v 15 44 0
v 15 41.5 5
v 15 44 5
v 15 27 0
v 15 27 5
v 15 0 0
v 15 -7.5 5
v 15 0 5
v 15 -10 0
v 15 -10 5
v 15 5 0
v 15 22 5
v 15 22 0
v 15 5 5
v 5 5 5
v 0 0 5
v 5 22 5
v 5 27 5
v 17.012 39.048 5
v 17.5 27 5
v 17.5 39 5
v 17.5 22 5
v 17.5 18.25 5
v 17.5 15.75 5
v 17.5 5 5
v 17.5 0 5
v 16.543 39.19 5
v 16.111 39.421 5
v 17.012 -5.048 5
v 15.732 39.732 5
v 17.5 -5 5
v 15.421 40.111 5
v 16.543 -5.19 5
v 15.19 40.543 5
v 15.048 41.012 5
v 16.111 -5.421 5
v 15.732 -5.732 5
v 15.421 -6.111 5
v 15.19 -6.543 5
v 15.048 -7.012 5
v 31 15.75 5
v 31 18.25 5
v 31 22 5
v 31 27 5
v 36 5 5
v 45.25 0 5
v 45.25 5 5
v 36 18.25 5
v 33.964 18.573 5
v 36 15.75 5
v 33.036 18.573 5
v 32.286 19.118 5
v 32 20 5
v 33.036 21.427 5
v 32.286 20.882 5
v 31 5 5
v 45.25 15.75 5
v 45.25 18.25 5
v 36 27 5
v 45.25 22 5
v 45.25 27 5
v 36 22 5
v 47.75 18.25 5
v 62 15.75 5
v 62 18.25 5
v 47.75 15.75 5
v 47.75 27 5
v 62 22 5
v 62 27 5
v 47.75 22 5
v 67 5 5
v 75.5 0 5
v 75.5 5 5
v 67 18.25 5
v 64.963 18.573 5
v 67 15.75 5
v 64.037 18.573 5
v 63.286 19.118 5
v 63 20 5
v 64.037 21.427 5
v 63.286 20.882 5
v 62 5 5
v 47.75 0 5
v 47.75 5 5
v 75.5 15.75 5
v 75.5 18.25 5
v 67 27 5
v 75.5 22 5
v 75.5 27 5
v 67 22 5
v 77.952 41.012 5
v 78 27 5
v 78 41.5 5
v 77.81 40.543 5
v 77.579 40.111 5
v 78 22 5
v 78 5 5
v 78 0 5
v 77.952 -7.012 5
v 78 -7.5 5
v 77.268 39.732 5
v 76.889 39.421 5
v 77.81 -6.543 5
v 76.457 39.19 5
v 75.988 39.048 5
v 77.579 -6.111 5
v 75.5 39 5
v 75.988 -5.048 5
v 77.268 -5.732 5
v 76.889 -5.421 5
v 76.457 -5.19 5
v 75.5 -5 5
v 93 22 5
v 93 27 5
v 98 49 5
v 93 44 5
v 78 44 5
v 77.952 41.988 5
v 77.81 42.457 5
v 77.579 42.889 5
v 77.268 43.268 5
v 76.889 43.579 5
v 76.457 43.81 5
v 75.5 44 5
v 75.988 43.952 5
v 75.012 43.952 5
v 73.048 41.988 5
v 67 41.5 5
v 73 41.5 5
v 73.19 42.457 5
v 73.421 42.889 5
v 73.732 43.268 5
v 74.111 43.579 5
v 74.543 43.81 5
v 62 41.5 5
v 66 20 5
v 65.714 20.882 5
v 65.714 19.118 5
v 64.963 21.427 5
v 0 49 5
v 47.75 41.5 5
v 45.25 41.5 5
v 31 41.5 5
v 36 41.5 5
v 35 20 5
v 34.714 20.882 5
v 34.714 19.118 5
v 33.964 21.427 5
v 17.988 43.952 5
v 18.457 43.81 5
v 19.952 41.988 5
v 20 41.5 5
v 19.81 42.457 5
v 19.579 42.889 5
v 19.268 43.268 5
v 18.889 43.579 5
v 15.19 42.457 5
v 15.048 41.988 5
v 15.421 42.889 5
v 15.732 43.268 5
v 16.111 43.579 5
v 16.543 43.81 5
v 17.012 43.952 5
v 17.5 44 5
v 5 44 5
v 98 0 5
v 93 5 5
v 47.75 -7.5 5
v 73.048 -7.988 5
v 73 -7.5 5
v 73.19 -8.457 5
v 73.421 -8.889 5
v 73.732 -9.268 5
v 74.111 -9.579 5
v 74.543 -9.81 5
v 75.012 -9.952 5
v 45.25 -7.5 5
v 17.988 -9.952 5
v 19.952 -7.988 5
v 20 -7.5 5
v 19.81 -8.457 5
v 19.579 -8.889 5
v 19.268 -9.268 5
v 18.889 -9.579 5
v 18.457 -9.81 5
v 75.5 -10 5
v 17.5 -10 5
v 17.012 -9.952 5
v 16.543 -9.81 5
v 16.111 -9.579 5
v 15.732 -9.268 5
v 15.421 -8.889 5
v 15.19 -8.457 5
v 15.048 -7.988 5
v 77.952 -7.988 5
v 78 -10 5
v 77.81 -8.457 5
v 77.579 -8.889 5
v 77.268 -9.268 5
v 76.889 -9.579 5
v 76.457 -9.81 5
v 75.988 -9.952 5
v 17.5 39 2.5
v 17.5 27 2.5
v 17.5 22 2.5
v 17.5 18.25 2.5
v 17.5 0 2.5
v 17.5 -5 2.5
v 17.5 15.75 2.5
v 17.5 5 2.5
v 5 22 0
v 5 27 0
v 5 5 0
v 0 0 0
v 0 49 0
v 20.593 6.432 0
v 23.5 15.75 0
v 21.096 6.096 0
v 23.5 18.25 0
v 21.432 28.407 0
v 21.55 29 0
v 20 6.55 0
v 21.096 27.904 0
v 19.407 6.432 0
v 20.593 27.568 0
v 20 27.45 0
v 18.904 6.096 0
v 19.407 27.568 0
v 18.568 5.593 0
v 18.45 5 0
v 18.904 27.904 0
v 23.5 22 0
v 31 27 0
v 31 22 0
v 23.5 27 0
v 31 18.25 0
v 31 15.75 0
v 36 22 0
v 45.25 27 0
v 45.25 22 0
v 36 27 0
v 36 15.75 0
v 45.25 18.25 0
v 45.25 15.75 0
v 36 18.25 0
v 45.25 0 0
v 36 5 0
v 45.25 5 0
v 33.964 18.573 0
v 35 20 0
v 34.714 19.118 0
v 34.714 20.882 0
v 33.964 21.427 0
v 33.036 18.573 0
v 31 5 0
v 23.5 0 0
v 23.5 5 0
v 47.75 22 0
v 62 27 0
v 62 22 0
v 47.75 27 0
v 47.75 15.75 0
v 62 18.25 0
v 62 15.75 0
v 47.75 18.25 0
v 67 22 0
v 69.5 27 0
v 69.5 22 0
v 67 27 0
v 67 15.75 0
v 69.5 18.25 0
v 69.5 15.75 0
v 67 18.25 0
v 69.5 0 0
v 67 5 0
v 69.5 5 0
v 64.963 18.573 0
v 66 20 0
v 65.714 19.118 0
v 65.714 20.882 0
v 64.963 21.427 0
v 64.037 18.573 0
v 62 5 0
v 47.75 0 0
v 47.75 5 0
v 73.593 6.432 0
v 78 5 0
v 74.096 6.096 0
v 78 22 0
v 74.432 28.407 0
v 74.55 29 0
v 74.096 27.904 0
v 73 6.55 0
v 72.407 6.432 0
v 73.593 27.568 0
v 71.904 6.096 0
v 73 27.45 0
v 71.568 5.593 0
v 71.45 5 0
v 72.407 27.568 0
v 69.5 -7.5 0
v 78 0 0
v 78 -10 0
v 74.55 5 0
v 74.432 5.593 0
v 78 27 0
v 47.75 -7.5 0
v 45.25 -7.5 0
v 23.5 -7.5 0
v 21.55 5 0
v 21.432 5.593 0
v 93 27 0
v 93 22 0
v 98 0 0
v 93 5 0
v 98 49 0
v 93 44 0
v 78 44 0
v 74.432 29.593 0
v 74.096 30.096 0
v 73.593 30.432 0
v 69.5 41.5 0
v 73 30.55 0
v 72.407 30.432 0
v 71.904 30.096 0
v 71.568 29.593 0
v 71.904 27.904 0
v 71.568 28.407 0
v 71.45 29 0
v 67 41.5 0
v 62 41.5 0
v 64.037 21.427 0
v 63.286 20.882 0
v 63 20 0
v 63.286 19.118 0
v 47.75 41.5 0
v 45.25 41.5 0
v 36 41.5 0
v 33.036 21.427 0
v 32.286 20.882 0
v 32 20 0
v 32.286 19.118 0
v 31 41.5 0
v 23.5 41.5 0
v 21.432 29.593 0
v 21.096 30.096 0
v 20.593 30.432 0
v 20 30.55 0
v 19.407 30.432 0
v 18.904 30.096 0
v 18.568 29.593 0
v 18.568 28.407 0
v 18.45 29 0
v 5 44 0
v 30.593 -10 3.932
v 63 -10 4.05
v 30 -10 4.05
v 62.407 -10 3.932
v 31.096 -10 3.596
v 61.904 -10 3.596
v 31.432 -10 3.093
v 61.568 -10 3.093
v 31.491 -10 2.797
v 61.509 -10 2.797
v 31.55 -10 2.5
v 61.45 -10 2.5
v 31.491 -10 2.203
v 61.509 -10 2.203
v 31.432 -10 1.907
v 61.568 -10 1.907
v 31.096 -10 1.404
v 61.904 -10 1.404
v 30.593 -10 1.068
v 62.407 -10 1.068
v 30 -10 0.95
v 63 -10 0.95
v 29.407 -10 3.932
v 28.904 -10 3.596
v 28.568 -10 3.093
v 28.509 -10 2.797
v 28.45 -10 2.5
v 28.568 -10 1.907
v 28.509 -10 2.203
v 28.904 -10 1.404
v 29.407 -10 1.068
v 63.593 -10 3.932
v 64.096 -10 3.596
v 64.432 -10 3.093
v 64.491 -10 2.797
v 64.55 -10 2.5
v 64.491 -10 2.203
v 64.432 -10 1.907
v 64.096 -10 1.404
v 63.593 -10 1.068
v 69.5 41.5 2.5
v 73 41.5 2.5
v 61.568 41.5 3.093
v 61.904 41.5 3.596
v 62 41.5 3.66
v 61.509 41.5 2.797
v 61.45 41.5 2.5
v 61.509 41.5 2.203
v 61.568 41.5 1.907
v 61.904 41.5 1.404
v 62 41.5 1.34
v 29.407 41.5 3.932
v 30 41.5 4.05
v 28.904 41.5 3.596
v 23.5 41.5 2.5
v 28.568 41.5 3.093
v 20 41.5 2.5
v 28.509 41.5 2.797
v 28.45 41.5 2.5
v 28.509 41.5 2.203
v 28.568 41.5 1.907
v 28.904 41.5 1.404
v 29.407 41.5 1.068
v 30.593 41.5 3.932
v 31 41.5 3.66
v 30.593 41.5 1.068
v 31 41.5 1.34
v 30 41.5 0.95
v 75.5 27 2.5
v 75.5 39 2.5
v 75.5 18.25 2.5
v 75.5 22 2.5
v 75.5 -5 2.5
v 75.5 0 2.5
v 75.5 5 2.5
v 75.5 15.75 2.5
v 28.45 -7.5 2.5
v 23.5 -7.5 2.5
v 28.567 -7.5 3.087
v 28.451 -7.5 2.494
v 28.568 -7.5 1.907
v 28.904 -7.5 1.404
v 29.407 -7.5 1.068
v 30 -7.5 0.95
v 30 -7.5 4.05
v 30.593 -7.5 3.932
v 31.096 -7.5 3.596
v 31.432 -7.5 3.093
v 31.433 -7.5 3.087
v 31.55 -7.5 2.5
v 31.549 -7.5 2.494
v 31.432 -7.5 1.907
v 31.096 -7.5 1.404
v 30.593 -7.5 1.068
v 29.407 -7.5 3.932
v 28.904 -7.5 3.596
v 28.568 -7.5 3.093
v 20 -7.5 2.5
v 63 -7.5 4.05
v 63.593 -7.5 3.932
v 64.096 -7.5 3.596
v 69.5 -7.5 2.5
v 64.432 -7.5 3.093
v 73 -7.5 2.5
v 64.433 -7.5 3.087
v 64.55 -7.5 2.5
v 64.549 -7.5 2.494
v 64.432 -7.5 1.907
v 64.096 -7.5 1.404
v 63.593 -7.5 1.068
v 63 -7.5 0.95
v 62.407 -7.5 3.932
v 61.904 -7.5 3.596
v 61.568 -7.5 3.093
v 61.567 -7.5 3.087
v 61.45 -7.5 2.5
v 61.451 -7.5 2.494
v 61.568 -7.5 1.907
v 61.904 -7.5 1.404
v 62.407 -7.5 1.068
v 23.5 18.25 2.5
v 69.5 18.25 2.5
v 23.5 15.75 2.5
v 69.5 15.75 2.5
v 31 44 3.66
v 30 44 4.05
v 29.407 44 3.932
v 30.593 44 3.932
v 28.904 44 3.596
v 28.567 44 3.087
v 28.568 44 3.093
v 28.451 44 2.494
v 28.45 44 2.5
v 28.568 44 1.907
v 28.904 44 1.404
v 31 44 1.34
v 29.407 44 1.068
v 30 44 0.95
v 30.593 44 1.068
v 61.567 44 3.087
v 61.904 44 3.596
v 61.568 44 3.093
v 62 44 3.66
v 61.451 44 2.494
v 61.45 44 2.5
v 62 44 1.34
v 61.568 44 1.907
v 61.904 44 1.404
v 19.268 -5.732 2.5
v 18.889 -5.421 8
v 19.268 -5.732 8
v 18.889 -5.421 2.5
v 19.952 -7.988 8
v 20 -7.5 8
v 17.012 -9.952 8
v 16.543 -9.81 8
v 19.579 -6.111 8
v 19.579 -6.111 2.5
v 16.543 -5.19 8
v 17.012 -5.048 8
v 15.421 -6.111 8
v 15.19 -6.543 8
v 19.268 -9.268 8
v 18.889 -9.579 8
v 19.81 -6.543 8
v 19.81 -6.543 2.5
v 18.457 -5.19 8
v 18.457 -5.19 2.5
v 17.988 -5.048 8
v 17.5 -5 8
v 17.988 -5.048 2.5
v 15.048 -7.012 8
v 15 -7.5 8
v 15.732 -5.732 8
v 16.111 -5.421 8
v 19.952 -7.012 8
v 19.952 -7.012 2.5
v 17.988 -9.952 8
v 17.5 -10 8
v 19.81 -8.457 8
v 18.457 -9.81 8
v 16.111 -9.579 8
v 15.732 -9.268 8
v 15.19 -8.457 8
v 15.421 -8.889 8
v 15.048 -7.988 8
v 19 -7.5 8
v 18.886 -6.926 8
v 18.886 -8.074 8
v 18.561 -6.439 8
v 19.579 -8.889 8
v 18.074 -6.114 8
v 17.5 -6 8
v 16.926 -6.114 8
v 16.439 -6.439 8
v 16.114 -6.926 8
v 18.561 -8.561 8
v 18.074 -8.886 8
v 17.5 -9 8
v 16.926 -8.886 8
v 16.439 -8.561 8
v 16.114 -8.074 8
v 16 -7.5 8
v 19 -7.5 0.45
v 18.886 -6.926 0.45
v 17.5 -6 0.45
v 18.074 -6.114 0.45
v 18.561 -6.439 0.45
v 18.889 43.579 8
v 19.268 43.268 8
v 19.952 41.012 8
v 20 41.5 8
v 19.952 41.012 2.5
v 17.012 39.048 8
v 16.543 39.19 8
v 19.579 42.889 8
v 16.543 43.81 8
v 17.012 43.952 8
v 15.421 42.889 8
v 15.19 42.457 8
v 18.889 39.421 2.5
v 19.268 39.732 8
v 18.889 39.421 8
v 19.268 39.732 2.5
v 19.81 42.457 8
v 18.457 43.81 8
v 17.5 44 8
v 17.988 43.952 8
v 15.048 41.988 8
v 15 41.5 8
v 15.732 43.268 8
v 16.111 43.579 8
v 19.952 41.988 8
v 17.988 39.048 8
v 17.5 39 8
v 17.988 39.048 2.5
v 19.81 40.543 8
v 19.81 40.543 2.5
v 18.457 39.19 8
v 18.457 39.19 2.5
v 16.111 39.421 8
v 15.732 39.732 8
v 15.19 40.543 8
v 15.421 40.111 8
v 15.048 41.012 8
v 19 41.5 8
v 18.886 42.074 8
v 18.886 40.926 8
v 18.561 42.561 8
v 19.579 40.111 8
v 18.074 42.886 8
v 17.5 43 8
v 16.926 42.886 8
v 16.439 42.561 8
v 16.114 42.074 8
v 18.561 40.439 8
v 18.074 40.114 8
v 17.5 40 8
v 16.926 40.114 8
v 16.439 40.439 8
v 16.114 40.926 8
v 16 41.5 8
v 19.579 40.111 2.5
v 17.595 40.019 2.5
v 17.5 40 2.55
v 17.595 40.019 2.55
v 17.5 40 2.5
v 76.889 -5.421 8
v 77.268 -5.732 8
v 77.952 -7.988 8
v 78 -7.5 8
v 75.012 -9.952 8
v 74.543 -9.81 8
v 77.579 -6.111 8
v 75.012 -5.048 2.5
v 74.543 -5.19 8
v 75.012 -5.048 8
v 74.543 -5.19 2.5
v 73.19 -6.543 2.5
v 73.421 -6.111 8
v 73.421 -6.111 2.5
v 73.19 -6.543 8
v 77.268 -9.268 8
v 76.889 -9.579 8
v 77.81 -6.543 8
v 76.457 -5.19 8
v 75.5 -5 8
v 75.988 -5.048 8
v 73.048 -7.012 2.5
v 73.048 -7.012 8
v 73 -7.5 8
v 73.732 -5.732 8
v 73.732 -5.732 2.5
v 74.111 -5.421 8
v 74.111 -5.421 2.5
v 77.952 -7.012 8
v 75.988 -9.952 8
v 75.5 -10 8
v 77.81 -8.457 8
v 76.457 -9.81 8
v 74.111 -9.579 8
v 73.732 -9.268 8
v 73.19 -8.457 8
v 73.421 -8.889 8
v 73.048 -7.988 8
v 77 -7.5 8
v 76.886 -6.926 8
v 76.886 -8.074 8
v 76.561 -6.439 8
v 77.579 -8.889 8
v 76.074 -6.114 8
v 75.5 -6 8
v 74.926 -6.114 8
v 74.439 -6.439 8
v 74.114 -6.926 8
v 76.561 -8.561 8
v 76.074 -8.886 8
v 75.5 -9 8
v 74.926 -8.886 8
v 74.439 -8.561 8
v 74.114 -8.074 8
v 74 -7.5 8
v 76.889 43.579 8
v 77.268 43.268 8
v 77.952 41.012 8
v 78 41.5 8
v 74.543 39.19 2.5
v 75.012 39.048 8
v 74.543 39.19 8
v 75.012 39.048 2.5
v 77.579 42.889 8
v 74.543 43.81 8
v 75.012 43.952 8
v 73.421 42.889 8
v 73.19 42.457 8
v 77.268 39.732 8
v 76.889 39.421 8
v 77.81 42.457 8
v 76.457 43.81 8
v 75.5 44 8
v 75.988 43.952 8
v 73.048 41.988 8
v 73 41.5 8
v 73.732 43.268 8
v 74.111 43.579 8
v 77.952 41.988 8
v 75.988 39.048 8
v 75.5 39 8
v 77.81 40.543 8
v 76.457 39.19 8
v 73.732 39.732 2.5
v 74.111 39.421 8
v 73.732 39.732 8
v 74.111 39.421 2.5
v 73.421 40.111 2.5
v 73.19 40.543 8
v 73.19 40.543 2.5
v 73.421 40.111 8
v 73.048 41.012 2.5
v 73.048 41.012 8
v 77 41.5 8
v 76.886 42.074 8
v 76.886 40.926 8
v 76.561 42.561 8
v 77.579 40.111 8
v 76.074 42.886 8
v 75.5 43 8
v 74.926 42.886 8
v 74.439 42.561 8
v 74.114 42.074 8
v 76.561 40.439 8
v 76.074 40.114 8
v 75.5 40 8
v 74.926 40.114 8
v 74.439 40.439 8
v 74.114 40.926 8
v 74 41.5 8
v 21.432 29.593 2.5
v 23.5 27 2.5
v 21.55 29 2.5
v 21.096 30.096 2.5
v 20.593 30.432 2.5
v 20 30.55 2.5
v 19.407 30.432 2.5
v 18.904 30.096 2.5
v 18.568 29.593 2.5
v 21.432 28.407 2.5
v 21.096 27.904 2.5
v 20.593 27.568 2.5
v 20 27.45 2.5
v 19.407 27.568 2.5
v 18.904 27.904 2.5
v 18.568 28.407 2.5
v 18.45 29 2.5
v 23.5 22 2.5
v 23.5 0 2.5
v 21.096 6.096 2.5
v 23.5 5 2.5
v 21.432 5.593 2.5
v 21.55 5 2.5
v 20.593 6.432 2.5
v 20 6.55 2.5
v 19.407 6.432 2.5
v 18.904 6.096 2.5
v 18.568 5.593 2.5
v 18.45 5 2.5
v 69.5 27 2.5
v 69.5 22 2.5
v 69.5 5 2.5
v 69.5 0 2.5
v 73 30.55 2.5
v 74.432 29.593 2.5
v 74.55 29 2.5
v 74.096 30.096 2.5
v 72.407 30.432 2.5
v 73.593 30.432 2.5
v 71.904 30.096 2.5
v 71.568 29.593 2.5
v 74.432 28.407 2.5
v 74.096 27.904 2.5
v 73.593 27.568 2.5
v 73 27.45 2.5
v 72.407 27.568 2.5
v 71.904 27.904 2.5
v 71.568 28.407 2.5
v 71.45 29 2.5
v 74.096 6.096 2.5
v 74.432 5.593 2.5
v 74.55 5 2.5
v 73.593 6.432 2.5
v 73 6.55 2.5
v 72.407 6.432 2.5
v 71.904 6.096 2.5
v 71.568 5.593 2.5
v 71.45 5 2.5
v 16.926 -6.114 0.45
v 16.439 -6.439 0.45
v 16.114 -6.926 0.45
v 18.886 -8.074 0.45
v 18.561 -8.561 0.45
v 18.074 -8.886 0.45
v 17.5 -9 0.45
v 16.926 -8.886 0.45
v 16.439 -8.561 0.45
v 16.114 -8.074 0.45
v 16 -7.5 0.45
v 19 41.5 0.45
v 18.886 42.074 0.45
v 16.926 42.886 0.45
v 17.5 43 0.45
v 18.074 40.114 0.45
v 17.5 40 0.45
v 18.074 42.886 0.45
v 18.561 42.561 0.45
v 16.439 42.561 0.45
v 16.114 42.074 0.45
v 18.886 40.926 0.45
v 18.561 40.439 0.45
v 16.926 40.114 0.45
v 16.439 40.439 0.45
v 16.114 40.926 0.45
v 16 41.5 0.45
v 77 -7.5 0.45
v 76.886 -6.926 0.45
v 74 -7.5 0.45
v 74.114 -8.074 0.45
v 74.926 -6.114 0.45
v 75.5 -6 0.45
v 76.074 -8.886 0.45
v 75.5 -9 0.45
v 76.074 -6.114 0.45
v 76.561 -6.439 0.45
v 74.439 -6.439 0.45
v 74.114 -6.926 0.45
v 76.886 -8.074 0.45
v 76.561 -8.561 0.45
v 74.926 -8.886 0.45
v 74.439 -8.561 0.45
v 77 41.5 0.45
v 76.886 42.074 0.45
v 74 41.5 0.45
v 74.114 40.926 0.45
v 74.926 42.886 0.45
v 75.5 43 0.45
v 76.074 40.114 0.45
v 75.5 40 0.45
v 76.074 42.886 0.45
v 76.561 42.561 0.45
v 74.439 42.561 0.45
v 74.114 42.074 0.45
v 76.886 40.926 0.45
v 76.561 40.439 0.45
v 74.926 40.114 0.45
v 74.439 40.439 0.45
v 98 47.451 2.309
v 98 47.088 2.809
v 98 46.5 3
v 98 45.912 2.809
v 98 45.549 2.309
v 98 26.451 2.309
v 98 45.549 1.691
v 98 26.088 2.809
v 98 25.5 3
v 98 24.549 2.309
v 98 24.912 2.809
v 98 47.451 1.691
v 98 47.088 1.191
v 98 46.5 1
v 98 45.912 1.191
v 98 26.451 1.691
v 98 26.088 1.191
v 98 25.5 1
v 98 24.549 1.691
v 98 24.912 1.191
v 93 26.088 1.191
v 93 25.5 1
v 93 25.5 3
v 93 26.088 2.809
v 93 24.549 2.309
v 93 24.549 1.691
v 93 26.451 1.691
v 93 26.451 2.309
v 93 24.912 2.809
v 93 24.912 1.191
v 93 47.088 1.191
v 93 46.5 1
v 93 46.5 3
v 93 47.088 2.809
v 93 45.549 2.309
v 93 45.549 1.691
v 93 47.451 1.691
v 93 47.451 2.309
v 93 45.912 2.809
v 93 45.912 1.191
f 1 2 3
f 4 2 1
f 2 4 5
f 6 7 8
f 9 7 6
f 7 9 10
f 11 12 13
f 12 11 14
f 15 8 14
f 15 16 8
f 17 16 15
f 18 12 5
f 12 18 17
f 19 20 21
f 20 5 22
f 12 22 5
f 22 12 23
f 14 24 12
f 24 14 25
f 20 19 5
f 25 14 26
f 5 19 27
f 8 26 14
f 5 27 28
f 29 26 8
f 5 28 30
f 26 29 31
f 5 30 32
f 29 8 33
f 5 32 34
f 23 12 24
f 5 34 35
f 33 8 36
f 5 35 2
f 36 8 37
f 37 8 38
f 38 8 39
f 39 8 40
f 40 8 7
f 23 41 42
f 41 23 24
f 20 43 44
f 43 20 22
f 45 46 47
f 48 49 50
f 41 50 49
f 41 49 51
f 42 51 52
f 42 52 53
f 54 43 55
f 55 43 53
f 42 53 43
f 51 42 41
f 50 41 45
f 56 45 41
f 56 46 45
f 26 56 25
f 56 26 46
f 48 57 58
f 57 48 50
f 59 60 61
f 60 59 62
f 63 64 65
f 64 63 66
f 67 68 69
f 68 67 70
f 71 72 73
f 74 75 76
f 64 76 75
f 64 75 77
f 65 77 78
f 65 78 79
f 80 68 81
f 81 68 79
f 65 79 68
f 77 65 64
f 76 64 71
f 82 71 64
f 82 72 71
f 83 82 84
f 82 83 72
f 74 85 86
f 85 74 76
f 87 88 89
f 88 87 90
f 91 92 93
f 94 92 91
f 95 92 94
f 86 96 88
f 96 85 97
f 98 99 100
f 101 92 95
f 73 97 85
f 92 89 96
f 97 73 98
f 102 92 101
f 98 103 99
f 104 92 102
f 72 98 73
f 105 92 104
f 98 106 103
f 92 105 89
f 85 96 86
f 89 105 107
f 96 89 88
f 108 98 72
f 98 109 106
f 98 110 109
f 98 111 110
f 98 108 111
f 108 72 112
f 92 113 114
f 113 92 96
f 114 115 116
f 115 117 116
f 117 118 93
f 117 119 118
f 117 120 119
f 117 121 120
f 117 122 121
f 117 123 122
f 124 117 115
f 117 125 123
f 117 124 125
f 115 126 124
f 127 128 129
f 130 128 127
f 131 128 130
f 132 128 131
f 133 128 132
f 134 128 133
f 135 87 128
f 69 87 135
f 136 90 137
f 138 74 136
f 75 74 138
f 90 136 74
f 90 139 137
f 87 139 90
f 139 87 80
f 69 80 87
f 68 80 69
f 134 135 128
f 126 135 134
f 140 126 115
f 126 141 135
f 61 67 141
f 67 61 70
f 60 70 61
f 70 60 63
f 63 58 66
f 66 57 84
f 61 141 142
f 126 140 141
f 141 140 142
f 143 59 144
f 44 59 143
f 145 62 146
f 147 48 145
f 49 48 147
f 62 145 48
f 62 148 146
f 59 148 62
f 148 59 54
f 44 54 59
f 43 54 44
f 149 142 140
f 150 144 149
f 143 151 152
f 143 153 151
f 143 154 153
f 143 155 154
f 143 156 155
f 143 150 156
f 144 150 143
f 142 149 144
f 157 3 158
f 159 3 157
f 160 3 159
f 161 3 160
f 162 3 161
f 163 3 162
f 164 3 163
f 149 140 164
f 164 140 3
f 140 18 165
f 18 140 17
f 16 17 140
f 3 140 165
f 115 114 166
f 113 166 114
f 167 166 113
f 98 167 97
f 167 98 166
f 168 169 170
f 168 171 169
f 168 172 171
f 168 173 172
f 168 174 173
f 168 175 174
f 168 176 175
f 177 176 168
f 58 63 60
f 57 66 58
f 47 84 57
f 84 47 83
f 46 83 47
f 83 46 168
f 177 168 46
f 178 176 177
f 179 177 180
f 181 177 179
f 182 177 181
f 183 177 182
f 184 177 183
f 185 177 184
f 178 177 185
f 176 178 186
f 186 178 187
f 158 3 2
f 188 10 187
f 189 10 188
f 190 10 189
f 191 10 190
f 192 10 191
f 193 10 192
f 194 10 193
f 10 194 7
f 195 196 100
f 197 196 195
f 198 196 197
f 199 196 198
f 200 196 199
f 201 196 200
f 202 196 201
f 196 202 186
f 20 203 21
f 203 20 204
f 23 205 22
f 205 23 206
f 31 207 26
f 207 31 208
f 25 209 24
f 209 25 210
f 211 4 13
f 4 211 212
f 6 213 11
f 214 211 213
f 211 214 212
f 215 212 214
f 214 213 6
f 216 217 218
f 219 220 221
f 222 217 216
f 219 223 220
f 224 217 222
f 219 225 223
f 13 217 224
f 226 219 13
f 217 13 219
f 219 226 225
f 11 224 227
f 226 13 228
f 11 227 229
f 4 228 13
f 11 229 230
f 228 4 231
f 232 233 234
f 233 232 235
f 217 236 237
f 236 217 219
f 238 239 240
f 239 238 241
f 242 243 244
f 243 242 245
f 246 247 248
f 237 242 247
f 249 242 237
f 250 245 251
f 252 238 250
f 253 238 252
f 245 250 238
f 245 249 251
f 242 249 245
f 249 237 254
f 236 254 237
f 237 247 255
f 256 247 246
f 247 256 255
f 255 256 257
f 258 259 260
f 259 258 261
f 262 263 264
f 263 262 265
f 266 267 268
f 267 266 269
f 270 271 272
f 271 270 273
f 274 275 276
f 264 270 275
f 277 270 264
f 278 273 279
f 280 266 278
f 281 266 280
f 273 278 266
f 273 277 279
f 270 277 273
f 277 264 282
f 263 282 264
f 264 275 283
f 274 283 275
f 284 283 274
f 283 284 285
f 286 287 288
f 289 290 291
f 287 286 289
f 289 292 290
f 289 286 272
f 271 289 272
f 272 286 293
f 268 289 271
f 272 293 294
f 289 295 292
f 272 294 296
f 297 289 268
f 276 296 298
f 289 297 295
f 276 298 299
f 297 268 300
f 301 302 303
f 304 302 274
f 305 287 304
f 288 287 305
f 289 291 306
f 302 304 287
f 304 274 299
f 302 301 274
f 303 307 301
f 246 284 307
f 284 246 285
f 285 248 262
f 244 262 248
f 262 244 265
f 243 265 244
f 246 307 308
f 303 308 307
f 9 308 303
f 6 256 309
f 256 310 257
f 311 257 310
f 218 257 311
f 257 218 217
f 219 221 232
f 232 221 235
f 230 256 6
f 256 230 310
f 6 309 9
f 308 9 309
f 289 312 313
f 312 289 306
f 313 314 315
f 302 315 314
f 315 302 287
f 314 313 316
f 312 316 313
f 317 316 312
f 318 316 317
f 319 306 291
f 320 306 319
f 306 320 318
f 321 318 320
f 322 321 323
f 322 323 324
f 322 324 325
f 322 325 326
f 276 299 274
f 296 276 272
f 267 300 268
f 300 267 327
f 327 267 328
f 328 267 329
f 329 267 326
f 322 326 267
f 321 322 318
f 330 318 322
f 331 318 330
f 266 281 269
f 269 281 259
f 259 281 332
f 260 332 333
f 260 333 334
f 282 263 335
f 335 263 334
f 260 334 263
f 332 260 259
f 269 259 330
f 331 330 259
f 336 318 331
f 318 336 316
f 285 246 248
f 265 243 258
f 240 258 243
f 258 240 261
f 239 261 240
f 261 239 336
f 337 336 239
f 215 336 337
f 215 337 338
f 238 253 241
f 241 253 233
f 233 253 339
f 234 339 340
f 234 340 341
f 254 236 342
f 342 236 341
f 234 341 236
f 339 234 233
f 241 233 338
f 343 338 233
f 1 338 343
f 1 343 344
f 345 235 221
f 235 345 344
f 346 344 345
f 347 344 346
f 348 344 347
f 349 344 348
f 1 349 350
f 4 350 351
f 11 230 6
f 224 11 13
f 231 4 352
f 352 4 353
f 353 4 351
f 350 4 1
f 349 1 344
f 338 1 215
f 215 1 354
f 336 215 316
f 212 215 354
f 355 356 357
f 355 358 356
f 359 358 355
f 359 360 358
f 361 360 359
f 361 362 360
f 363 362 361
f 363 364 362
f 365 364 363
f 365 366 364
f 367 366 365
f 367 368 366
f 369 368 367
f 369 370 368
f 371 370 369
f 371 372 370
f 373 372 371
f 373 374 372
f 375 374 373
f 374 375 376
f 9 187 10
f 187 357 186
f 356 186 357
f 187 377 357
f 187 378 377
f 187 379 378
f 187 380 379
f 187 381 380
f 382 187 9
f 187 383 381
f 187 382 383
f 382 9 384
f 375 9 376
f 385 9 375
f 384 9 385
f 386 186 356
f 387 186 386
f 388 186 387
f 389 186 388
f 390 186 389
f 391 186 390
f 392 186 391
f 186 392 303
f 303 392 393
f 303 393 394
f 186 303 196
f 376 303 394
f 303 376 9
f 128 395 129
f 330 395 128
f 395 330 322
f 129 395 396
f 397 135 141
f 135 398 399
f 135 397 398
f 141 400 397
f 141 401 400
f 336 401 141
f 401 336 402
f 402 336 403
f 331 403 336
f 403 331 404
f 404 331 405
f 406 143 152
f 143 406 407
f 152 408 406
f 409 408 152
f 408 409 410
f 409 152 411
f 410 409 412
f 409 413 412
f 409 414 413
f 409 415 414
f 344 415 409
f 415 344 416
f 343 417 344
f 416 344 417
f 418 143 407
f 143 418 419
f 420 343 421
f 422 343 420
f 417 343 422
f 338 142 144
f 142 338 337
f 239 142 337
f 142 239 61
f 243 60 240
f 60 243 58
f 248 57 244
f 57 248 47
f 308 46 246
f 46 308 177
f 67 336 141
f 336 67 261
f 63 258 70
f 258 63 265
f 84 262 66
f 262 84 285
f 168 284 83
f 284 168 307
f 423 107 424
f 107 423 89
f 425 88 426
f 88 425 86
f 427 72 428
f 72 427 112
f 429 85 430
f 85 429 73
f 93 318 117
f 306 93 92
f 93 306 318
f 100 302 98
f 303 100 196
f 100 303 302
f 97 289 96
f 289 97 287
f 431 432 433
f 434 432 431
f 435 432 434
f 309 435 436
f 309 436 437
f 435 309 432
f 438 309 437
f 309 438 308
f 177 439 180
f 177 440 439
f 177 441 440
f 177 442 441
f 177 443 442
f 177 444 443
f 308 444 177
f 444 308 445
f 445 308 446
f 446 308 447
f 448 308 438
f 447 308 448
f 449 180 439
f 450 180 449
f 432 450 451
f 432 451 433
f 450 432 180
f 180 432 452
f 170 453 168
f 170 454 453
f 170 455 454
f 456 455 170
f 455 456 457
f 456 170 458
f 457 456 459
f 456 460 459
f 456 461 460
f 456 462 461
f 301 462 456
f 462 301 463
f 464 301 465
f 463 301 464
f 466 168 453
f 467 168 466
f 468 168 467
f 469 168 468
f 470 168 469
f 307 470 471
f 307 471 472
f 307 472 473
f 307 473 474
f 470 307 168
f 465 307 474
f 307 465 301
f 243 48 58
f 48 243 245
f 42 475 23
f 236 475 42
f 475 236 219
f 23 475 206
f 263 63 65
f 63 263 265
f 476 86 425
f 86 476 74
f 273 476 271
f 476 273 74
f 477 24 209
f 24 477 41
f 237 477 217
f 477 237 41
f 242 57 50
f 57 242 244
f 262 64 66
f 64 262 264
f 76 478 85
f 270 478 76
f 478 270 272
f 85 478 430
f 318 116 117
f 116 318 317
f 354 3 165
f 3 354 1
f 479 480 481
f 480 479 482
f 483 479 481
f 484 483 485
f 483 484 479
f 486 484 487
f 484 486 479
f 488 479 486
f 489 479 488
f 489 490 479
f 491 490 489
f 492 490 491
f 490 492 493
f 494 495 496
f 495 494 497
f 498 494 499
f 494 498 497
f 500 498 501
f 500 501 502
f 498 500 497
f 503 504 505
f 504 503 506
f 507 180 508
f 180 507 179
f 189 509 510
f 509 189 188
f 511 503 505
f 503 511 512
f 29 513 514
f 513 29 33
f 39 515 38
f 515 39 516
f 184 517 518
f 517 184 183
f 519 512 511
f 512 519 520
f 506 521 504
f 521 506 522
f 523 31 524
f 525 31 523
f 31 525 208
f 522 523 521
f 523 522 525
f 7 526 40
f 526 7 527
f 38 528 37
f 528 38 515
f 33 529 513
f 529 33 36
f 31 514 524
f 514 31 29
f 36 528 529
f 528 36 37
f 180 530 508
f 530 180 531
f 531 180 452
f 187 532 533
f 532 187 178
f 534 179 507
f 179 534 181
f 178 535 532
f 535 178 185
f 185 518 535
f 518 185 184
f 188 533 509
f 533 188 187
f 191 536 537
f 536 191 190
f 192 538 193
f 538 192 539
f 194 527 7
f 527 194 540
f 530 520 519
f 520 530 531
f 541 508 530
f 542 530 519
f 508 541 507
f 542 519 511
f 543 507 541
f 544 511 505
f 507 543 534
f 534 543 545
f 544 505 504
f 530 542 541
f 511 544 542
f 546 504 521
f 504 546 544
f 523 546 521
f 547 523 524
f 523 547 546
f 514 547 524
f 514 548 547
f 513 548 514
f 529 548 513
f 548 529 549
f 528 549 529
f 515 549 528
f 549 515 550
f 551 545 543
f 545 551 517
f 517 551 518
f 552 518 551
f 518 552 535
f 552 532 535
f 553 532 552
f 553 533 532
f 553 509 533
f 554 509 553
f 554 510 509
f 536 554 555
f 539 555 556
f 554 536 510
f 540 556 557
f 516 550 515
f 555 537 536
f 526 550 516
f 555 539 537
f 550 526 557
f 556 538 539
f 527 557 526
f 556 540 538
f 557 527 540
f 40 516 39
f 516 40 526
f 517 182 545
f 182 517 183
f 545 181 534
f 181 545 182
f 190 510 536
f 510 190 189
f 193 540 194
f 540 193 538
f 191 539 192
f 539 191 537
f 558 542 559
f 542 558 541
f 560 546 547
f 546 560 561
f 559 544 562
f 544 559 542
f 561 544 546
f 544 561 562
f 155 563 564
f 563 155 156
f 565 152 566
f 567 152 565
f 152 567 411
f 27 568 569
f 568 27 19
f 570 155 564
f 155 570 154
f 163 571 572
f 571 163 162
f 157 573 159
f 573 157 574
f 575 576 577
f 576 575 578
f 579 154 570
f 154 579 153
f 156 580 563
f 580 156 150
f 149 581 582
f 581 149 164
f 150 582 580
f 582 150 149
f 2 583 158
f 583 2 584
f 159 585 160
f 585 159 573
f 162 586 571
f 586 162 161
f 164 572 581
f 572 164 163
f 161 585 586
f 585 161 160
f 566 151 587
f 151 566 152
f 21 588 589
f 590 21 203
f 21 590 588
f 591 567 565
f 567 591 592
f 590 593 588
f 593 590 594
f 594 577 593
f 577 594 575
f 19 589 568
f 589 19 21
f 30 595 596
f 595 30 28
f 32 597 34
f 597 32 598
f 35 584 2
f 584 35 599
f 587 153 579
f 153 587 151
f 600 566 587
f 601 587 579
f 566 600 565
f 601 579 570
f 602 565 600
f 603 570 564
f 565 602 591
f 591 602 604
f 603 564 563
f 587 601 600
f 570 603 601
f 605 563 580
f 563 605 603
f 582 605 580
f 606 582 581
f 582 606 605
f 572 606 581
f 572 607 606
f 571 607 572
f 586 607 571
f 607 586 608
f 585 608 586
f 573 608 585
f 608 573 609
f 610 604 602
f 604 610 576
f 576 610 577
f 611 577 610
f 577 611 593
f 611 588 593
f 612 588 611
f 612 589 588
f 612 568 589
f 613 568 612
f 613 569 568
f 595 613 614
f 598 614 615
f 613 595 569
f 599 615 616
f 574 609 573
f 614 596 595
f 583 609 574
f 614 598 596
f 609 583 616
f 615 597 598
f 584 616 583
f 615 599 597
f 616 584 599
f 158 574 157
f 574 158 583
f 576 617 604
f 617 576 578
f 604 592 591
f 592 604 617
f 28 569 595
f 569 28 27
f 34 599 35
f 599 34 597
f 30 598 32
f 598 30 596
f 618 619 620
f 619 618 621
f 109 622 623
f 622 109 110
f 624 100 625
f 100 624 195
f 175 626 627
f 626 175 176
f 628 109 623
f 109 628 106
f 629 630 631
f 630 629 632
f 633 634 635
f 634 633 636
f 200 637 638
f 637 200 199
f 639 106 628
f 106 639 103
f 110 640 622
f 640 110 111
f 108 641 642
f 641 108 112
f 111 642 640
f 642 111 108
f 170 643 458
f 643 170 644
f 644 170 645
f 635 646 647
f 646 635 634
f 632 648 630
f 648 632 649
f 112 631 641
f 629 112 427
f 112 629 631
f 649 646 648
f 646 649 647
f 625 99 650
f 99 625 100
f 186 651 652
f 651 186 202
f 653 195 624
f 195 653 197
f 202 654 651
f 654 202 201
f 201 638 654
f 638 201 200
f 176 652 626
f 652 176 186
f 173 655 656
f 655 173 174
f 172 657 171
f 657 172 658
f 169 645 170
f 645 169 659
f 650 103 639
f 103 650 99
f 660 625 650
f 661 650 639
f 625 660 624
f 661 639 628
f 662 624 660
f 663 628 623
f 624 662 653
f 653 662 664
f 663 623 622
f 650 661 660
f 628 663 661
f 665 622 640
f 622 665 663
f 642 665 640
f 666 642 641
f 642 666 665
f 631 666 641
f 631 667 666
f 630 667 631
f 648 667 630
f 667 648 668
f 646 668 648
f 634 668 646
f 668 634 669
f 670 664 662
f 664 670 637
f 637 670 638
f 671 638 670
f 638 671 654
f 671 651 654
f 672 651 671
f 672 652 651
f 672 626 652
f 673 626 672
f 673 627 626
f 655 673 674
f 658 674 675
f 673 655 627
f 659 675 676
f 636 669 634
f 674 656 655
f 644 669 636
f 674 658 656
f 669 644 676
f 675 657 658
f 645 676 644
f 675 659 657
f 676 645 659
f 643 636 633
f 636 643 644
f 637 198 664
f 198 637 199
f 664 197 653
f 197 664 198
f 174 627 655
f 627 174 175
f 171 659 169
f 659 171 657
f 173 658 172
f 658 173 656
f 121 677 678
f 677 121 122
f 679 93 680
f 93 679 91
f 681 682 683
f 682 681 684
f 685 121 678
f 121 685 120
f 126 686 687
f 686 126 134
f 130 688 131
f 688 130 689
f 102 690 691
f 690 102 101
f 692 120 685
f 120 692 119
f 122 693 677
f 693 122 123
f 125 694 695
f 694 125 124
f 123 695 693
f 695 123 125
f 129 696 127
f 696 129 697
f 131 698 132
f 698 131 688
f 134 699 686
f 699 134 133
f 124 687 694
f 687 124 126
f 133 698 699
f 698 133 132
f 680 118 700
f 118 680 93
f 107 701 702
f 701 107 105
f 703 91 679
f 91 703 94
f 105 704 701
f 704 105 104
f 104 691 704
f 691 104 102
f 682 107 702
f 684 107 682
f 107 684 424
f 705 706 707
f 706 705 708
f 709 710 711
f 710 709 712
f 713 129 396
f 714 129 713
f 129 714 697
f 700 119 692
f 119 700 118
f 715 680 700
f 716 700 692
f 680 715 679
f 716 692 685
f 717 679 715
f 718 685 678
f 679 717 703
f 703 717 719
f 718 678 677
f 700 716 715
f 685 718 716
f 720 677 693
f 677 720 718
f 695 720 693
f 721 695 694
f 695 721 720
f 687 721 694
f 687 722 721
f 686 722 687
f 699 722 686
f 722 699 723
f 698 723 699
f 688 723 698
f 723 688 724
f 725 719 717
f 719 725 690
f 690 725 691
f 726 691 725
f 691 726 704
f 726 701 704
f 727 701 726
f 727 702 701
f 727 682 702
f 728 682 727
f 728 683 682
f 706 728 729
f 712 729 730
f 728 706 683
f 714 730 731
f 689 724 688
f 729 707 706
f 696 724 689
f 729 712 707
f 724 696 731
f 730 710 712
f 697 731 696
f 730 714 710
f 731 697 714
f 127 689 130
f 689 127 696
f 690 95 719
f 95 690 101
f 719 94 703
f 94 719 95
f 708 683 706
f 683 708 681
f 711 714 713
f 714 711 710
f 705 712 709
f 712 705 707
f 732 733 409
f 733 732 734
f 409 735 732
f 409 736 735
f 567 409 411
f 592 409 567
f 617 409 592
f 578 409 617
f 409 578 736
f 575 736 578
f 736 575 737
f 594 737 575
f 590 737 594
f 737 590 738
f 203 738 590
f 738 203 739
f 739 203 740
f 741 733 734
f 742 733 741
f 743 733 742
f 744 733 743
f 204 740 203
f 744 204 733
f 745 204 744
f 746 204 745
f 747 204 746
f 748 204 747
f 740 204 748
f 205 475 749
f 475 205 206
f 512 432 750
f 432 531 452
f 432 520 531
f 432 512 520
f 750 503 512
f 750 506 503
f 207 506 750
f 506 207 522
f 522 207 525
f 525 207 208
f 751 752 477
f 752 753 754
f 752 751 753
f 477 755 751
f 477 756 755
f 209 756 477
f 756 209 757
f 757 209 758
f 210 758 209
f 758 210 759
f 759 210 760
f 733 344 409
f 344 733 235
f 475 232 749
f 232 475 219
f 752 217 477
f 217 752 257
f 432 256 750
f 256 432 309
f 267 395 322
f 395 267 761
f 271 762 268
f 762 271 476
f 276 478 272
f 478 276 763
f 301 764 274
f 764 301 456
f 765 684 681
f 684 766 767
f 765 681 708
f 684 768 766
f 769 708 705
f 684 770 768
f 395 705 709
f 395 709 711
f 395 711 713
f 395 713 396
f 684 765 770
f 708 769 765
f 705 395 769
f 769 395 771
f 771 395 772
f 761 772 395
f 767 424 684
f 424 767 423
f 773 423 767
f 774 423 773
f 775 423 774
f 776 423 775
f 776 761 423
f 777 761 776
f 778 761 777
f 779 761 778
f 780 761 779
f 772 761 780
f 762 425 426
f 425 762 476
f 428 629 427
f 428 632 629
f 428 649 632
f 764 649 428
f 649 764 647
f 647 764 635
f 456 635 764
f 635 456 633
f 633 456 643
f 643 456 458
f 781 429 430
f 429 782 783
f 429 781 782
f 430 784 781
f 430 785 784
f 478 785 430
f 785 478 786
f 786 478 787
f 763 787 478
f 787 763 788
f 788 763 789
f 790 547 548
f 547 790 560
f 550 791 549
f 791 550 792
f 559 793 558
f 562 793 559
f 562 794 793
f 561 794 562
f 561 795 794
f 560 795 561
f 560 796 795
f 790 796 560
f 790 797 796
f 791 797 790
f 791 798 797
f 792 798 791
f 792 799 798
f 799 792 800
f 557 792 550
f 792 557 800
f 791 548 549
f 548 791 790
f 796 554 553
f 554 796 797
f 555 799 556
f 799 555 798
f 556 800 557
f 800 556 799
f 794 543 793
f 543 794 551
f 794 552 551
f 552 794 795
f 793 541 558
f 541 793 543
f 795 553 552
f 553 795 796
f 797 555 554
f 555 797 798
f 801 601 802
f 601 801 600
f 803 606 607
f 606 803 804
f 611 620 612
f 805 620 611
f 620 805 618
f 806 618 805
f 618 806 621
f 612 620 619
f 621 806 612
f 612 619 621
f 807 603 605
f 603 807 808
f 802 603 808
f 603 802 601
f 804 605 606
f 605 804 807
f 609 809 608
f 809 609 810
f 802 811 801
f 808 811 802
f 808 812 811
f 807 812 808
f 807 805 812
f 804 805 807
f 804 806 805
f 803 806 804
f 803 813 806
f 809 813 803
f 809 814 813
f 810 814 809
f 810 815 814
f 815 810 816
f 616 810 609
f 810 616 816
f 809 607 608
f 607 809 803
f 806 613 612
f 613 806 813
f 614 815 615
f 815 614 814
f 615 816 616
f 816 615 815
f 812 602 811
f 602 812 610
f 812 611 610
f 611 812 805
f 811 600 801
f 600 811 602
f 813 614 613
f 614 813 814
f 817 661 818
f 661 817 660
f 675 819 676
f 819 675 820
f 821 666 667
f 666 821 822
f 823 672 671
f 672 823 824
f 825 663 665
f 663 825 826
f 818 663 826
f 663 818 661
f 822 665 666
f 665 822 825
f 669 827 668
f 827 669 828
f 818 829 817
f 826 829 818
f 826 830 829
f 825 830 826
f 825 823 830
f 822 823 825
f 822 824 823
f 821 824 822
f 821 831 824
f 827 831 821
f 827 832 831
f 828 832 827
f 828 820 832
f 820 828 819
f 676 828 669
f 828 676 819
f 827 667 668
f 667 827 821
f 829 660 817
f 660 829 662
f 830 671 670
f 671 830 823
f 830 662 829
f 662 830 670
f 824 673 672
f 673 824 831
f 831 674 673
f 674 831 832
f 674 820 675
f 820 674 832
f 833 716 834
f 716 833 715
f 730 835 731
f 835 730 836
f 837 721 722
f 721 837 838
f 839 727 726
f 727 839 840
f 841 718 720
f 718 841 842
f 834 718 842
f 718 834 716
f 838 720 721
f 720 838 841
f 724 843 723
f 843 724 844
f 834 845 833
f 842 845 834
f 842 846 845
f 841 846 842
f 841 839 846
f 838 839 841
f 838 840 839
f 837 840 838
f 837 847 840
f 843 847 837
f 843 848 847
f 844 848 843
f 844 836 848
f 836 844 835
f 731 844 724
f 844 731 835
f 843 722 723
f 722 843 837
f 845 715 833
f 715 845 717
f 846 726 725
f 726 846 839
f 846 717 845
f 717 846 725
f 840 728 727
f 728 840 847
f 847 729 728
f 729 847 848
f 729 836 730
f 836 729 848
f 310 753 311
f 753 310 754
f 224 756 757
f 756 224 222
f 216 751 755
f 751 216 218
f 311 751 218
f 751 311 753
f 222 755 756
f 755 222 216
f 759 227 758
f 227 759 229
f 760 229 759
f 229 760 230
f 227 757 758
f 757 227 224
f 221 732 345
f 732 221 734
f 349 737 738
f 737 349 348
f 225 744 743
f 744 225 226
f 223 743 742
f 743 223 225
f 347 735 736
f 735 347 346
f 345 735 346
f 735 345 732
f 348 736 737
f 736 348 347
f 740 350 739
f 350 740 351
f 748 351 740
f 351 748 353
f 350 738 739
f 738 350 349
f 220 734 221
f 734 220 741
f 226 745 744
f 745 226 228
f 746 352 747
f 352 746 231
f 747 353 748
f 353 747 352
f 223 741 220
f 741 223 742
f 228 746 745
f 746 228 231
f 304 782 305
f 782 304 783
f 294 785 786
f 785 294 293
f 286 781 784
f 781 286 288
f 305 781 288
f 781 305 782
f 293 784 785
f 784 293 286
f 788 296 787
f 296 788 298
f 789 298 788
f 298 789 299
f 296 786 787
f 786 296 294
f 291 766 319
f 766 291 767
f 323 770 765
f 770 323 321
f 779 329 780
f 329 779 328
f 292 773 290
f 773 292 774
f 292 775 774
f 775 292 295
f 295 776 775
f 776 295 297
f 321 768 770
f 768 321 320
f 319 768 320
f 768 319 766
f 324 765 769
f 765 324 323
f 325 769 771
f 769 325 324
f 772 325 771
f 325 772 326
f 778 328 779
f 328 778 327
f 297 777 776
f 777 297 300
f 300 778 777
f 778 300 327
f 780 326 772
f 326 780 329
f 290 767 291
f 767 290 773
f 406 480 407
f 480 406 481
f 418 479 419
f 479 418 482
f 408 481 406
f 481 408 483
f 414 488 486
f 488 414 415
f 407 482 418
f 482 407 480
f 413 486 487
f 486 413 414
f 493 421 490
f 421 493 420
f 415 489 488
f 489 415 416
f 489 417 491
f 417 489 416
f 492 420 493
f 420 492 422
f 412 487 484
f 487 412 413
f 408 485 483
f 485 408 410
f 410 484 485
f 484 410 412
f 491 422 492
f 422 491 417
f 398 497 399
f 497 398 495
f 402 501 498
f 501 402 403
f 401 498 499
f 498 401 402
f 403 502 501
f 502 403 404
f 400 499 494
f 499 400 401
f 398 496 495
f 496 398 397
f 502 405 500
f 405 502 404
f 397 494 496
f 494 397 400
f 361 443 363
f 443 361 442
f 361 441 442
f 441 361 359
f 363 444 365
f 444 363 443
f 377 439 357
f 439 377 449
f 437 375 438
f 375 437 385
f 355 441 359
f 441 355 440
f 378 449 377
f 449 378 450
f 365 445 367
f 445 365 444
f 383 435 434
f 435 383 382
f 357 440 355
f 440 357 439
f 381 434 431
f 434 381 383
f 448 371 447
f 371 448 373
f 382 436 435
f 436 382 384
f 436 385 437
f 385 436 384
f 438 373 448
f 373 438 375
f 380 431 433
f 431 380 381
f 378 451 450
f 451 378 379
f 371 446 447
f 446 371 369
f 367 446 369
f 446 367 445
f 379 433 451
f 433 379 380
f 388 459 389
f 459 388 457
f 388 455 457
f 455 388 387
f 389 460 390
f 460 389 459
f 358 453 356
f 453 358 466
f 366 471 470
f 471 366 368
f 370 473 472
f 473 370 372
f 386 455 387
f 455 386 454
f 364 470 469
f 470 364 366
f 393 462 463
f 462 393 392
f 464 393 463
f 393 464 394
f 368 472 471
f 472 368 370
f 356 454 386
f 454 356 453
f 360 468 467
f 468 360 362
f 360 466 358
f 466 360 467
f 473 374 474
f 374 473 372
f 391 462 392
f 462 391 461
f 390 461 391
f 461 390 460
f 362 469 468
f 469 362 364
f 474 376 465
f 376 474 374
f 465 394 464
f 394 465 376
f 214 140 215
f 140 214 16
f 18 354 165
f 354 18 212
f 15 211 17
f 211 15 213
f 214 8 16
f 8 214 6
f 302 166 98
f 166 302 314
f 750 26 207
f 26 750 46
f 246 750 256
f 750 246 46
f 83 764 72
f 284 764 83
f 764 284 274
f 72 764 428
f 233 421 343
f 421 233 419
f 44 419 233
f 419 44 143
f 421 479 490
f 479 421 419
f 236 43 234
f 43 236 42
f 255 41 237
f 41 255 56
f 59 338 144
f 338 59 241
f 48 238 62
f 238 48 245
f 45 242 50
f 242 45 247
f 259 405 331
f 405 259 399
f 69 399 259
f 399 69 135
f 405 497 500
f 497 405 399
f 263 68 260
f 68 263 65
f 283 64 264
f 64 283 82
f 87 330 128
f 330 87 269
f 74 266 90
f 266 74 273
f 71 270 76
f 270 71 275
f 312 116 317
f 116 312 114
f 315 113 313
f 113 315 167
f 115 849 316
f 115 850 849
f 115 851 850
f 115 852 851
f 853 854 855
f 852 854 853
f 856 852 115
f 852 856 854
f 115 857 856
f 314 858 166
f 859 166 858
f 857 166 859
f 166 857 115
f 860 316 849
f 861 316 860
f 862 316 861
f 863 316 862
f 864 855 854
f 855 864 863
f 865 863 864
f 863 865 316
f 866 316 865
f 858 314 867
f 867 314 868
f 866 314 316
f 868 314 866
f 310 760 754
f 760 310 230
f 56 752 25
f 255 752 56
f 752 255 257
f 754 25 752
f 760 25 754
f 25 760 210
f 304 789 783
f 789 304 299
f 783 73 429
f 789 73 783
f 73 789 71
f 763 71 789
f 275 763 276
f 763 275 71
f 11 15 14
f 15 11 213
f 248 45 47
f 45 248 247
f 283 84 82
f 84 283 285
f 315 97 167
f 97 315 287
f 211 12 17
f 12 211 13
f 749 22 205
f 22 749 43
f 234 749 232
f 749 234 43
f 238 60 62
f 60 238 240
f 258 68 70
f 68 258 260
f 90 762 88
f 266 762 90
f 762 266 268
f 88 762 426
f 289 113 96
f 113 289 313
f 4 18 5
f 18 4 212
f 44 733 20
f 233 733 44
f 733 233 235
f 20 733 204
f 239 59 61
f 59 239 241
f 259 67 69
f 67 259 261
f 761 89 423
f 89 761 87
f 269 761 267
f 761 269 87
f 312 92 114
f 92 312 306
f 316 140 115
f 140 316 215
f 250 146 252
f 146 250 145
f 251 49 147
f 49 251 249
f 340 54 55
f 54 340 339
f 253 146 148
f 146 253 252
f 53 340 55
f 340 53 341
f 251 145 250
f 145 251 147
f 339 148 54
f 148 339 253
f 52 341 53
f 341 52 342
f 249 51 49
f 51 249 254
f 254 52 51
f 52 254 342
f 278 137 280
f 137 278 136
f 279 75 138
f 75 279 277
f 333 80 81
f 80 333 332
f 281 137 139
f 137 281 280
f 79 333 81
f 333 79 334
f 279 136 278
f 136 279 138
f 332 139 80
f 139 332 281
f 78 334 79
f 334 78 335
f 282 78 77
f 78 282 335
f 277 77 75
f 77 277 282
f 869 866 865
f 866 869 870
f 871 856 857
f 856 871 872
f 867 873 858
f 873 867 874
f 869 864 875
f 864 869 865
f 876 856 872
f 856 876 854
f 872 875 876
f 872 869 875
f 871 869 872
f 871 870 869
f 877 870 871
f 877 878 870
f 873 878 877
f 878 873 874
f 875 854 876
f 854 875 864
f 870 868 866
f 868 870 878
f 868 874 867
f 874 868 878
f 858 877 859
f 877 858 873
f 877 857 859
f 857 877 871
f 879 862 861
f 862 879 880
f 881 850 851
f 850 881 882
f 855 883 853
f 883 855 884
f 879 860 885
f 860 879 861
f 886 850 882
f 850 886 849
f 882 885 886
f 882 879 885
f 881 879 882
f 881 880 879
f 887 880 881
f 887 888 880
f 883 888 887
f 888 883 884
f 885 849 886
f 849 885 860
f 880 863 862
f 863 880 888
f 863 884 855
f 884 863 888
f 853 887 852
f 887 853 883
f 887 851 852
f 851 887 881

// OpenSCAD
use<rpiPlate5_halfFlatMount.scad>;

bottomPlateZ=5;
bottomPlateX=98-bottomPlateZ;
bottomPlateY=44;

holesDist=60;

switchesPlate1Z=40;

beamsScrewHolesRadius=3/2;

module hollowBream(x0,y0,z0,r0)
{
    difference()
    {
        cube([x0,y0,z0]);
        translate([x0/2,y0/2,-0.5])
            cylinder(r=r0,h=z0+1);
    }
}

difference()
{
openBasePlate3(chassX=bottomPlateX,chassY=bottomPlateY,beamsThick=bottomPlateZ,nbBeamsX=2,nbBeamsY=1,thickness01=bottomPlateZ);
    
  translate([33.5,20,-1])
    cylinder(r=3/2,bottomPlateZ+2,$fn=10);
    
  translate([64.5,20,-1])
    cylinder(r=3/2,bottomPlateZ+2,$fn=10);
    
  translate([bottomPlateX,36-10.5,2])
    {
      rotate([0,90,0])
        cylinder(r=1,bottomPlateZ+2,$fn=10);
    }
  translate([bottomPlateX,36+10.5,2])
    {
      rotate([0,90,0])
        cylinder(r=1,bottomPlateZ+2,$fn=10);
    }
}

//fixation camera
 /*translate([bottomPlateX+bottomPlateZ,23.5-1,0])
    cube([4,1,20]);

 translate([bottomPlateX+bottomPlateZ,23.5-1+25+0.5,0])
    cube([4,1,20]);
*/
/*
translate([15,bottomPlateY,0])
openBasePlate3(chassX=bottomPlateY,chassY=12,beamsThick=bottomPlateZ,nbBeamsX=2,nbBeamsY=0,thickness01=bottomPlateZ);*/


translate([15,-10,0])
{
color([1,0.5,0])
piSupport2(1,1,bottomPlateZ);
}

/*

translate([bottomPlateX,0,0])
{
    hollowBream(bottomPlateZ,bottomPlateZ,switchesPlate1Z,beamsScrewHolesRadius);
}
translate([bottomPlateX-10,0,0])
    hollowBream(bottomPlateZ,bottomPlateZ,switchesPlate1Z,beamsScrewHolesRadius);

translate([bottomPlateX,bottomPlateY/3,0])
    hollowBream(bottomPlateZ,bottomPlateZ,switchesPlate1Z,beamsScrewHolesRadius);



translate([bottomPlateX,2*bottomPlateY/3,0])
hollowBream(bottomPlateZ,bottomPlateZ,switchesPlate1Z,beamsScrewHolesRadius);
*/

/*
translate([bottomPlateX,bottomPlateY/3+5+25,0])
cube([bottomPlateZ,bottomPlateZ,switchesPlate1Z]);
*/
